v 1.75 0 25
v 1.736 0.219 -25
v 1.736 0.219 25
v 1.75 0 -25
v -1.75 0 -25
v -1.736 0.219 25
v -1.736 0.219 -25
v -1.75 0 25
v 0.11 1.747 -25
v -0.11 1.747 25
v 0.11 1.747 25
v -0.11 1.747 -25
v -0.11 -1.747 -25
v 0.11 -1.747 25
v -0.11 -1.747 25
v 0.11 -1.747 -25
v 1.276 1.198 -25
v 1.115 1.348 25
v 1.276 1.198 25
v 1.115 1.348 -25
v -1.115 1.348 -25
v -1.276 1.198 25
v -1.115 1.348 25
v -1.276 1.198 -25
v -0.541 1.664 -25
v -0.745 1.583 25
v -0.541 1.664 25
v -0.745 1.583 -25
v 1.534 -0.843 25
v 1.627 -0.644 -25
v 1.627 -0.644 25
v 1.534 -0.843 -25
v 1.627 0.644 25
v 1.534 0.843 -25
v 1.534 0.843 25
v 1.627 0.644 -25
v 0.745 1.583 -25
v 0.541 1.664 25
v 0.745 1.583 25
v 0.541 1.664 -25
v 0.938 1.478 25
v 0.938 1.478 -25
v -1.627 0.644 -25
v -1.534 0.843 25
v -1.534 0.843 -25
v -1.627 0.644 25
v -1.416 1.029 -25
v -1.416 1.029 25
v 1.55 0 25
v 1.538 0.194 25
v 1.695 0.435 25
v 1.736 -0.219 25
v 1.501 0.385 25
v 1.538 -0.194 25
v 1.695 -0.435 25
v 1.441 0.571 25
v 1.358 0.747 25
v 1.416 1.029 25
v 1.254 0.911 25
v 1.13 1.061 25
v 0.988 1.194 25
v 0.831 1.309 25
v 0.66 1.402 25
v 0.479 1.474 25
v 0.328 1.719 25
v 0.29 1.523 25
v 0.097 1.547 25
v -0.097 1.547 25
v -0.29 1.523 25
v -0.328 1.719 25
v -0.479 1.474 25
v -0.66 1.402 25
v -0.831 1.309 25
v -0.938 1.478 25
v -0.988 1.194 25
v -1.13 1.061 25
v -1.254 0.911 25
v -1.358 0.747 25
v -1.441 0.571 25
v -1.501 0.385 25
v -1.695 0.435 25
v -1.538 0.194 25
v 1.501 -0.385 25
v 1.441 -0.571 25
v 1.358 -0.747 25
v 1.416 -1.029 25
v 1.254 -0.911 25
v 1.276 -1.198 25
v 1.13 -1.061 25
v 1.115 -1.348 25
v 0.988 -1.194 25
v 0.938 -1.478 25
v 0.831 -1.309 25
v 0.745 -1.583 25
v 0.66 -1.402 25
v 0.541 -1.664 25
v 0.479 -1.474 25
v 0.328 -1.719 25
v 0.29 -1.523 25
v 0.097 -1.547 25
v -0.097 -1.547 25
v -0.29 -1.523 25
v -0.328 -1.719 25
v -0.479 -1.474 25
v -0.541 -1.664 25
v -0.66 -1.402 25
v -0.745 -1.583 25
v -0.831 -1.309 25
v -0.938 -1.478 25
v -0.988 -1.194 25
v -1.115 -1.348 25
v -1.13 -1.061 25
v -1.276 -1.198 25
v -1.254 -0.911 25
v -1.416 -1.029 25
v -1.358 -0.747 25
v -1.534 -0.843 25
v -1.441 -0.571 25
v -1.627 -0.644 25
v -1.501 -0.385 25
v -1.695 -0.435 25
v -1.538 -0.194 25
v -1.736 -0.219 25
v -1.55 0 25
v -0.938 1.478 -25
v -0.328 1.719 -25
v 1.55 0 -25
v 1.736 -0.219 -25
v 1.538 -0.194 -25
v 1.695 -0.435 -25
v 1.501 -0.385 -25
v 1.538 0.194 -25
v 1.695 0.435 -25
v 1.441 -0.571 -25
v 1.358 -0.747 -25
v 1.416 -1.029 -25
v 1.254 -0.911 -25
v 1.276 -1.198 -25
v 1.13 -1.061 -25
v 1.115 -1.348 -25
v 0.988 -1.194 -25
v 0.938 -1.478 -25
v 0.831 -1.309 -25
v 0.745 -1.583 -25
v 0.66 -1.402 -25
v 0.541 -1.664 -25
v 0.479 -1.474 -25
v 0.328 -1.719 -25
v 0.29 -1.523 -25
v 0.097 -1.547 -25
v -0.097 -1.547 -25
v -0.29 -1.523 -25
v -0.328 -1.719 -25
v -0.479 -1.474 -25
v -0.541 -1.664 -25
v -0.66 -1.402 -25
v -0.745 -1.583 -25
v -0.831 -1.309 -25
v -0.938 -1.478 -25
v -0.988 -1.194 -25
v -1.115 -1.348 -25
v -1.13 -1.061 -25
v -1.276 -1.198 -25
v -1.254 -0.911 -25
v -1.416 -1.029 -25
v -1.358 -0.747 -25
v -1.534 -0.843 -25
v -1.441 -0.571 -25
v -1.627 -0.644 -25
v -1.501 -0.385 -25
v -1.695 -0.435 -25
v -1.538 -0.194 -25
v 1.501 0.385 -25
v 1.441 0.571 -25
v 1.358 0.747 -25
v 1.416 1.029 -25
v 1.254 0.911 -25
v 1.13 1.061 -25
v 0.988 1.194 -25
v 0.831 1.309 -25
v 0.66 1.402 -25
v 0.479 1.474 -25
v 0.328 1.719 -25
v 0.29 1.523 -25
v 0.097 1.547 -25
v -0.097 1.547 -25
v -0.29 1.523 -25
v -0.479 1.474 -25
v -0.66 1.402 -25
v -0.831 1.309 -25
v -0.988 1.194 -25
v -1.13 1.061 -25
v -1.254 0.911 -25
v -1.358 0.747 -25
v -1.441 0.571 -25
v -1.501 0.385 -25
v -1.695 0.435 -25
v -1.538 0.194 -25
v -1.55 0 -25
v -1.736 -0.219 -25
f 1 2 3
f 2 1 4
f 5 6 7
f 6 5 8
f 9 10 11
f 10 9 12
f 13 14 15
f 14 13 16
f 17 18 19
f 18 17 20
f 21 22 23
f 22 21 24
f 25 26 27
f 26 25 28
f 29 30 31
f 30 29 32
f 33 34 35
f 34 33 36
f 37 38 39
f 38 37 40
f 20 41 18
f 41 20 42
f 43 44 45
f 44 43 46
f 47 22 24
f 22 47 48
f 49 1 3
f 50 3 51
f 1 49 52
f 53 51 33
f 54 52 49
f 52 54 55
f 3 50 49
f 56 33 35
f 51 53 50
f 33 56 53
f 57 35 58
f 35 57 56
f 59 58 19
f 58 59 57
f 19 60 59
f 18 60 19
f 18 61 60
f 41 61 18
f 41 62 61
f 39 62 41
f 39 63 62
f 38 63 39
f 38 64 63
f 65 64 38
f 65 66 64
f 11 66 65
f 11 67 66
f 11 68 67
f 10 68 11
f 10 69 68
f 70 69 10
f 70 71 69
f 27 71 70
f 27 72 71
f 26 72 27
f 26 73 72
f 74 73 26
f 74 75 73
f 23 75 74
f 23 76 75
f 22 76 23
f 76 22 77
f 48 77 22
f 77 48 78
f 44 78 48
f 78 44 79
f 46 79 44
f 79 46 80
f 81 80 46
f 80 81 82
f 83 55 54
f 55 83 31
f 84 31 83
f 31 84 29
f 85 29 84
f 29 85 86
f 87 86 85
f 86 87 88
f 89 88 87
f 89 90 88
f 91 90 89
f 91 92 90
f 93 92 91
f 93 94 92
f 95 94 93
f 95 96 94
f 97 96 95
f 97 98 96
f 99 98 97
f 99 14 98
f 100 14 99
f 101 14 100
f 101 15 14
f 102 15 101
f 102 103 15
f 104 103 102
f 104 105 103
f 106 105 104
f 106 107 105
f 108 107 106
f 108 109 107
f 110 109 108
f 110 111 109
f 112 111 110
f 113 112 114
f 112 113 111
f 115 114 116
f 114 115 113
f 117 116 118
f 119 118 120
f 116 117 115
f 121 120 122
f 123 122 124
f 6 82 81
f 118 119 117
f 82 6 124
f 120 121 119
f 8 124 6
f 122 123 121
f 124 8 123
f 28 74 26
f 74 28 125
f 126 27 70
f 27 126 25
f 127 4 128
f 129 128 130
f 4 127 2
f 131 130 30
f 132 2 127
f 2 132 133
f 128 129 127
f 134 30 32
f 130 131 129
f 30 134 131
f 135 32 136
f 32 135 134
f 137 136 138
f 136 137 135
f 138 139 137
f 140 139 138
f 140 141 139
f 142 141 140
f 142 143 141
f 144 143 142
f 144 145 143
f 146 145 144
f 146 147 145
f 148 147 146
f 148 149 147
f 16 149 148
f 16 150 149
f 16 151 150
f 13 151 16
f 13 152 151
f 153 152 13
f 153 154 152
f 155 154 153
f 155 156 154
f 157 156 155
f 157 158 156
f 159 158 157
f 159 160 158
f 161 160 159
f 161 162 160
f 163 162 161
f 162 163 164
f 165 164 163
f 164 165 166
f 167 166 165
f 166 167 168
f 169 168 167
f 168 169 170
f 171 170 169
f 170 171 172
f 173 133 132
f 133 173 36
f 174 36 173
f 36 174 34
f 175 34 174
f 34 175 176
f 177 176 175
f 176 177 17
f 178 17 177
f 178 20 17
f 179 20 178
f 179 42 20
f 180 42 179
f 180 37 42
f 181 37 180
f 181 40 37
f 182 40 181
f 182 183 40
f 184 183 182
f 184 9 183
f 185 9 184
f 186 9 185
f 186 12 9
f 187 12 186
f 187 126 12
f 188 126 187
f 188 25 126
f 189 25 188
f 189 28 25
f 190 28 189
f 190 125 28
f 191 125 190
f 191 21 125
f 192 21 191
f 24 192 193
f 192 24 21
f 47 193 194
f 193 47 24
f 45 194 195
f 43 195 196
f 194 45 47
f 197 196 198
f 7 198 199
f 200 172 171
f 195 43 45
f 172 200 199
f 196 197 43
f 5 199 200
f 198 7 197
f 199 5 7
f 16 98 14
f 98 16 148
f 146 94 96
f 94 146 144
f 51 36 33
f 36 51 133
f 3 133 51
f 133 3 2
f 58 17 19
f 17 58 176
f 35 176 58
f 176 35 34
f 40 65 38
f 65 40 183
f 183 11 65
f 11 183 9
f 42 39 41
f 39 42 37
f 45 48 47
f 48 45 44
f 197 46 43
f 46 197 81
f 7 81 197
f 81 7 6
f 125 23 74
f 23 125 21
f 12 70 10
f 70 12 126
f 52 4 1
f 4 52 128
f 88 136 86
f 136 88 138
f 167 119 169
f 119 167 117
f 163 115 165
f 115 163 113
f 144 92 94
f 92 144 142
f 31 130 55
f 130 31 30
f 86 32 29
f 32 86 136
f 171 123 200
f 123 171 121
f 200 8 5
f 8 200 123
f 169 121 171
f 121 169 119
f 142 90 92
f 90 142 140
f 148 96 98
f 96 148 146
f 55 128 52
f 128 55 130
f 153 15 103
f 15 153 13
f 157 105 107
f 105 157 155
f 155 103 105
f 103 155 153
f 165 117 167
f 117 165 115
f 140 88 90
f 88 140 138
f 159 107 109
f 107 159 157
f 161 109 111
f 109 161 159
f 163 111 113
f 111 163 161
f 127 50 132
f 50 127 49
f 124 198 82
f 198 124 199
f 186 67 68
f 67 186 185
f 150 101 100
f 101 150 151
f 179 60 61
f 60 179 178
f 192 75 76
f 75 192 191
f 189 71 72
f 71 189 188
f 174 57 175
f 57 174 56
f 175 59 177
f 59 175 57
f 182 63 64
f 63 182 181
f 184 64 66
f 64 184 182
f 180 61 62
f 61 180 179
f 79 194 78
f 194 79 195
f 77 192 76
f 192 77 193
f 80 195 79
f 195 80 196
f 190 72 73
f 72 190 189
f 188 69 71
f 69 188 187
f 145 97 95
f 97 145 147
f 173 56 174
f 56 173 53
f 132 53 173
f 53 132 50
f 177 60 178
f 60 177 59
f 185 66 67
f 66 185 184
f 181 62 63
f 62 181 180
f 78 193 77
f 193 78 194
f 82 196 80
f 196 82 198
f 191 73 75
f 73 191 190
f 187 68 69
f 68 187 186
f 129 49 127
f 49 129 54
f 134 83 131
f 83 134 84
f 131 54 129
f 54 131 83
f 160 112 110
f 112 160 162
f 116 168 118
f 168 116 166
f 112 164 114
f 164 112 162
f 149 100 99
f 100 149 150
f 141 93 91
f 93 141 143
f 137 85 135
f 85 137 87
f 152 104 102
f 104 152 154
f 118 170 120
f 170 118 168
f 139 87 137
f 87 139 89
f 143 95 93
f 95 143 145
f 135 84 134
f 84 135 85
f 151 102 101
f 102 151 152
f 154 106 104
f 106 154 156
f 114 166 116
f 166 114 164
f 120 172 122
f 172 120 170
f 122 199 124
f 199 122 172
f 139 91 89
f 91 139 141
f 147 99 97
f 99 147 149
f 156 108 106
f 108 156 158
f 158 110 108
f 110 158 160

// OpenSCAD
$fn = 50;


difference() {
	union() {
		translate(v = [0, 0, -25.0000000000]) {
			cylinder(h = 50, r = 1.7500000000);
		}
	}
	union() {
		translate(v = [0, 0, -100.0000000000]) {
			cylinder(h = 200, r = 1.5500000000);
		}
	}
}
